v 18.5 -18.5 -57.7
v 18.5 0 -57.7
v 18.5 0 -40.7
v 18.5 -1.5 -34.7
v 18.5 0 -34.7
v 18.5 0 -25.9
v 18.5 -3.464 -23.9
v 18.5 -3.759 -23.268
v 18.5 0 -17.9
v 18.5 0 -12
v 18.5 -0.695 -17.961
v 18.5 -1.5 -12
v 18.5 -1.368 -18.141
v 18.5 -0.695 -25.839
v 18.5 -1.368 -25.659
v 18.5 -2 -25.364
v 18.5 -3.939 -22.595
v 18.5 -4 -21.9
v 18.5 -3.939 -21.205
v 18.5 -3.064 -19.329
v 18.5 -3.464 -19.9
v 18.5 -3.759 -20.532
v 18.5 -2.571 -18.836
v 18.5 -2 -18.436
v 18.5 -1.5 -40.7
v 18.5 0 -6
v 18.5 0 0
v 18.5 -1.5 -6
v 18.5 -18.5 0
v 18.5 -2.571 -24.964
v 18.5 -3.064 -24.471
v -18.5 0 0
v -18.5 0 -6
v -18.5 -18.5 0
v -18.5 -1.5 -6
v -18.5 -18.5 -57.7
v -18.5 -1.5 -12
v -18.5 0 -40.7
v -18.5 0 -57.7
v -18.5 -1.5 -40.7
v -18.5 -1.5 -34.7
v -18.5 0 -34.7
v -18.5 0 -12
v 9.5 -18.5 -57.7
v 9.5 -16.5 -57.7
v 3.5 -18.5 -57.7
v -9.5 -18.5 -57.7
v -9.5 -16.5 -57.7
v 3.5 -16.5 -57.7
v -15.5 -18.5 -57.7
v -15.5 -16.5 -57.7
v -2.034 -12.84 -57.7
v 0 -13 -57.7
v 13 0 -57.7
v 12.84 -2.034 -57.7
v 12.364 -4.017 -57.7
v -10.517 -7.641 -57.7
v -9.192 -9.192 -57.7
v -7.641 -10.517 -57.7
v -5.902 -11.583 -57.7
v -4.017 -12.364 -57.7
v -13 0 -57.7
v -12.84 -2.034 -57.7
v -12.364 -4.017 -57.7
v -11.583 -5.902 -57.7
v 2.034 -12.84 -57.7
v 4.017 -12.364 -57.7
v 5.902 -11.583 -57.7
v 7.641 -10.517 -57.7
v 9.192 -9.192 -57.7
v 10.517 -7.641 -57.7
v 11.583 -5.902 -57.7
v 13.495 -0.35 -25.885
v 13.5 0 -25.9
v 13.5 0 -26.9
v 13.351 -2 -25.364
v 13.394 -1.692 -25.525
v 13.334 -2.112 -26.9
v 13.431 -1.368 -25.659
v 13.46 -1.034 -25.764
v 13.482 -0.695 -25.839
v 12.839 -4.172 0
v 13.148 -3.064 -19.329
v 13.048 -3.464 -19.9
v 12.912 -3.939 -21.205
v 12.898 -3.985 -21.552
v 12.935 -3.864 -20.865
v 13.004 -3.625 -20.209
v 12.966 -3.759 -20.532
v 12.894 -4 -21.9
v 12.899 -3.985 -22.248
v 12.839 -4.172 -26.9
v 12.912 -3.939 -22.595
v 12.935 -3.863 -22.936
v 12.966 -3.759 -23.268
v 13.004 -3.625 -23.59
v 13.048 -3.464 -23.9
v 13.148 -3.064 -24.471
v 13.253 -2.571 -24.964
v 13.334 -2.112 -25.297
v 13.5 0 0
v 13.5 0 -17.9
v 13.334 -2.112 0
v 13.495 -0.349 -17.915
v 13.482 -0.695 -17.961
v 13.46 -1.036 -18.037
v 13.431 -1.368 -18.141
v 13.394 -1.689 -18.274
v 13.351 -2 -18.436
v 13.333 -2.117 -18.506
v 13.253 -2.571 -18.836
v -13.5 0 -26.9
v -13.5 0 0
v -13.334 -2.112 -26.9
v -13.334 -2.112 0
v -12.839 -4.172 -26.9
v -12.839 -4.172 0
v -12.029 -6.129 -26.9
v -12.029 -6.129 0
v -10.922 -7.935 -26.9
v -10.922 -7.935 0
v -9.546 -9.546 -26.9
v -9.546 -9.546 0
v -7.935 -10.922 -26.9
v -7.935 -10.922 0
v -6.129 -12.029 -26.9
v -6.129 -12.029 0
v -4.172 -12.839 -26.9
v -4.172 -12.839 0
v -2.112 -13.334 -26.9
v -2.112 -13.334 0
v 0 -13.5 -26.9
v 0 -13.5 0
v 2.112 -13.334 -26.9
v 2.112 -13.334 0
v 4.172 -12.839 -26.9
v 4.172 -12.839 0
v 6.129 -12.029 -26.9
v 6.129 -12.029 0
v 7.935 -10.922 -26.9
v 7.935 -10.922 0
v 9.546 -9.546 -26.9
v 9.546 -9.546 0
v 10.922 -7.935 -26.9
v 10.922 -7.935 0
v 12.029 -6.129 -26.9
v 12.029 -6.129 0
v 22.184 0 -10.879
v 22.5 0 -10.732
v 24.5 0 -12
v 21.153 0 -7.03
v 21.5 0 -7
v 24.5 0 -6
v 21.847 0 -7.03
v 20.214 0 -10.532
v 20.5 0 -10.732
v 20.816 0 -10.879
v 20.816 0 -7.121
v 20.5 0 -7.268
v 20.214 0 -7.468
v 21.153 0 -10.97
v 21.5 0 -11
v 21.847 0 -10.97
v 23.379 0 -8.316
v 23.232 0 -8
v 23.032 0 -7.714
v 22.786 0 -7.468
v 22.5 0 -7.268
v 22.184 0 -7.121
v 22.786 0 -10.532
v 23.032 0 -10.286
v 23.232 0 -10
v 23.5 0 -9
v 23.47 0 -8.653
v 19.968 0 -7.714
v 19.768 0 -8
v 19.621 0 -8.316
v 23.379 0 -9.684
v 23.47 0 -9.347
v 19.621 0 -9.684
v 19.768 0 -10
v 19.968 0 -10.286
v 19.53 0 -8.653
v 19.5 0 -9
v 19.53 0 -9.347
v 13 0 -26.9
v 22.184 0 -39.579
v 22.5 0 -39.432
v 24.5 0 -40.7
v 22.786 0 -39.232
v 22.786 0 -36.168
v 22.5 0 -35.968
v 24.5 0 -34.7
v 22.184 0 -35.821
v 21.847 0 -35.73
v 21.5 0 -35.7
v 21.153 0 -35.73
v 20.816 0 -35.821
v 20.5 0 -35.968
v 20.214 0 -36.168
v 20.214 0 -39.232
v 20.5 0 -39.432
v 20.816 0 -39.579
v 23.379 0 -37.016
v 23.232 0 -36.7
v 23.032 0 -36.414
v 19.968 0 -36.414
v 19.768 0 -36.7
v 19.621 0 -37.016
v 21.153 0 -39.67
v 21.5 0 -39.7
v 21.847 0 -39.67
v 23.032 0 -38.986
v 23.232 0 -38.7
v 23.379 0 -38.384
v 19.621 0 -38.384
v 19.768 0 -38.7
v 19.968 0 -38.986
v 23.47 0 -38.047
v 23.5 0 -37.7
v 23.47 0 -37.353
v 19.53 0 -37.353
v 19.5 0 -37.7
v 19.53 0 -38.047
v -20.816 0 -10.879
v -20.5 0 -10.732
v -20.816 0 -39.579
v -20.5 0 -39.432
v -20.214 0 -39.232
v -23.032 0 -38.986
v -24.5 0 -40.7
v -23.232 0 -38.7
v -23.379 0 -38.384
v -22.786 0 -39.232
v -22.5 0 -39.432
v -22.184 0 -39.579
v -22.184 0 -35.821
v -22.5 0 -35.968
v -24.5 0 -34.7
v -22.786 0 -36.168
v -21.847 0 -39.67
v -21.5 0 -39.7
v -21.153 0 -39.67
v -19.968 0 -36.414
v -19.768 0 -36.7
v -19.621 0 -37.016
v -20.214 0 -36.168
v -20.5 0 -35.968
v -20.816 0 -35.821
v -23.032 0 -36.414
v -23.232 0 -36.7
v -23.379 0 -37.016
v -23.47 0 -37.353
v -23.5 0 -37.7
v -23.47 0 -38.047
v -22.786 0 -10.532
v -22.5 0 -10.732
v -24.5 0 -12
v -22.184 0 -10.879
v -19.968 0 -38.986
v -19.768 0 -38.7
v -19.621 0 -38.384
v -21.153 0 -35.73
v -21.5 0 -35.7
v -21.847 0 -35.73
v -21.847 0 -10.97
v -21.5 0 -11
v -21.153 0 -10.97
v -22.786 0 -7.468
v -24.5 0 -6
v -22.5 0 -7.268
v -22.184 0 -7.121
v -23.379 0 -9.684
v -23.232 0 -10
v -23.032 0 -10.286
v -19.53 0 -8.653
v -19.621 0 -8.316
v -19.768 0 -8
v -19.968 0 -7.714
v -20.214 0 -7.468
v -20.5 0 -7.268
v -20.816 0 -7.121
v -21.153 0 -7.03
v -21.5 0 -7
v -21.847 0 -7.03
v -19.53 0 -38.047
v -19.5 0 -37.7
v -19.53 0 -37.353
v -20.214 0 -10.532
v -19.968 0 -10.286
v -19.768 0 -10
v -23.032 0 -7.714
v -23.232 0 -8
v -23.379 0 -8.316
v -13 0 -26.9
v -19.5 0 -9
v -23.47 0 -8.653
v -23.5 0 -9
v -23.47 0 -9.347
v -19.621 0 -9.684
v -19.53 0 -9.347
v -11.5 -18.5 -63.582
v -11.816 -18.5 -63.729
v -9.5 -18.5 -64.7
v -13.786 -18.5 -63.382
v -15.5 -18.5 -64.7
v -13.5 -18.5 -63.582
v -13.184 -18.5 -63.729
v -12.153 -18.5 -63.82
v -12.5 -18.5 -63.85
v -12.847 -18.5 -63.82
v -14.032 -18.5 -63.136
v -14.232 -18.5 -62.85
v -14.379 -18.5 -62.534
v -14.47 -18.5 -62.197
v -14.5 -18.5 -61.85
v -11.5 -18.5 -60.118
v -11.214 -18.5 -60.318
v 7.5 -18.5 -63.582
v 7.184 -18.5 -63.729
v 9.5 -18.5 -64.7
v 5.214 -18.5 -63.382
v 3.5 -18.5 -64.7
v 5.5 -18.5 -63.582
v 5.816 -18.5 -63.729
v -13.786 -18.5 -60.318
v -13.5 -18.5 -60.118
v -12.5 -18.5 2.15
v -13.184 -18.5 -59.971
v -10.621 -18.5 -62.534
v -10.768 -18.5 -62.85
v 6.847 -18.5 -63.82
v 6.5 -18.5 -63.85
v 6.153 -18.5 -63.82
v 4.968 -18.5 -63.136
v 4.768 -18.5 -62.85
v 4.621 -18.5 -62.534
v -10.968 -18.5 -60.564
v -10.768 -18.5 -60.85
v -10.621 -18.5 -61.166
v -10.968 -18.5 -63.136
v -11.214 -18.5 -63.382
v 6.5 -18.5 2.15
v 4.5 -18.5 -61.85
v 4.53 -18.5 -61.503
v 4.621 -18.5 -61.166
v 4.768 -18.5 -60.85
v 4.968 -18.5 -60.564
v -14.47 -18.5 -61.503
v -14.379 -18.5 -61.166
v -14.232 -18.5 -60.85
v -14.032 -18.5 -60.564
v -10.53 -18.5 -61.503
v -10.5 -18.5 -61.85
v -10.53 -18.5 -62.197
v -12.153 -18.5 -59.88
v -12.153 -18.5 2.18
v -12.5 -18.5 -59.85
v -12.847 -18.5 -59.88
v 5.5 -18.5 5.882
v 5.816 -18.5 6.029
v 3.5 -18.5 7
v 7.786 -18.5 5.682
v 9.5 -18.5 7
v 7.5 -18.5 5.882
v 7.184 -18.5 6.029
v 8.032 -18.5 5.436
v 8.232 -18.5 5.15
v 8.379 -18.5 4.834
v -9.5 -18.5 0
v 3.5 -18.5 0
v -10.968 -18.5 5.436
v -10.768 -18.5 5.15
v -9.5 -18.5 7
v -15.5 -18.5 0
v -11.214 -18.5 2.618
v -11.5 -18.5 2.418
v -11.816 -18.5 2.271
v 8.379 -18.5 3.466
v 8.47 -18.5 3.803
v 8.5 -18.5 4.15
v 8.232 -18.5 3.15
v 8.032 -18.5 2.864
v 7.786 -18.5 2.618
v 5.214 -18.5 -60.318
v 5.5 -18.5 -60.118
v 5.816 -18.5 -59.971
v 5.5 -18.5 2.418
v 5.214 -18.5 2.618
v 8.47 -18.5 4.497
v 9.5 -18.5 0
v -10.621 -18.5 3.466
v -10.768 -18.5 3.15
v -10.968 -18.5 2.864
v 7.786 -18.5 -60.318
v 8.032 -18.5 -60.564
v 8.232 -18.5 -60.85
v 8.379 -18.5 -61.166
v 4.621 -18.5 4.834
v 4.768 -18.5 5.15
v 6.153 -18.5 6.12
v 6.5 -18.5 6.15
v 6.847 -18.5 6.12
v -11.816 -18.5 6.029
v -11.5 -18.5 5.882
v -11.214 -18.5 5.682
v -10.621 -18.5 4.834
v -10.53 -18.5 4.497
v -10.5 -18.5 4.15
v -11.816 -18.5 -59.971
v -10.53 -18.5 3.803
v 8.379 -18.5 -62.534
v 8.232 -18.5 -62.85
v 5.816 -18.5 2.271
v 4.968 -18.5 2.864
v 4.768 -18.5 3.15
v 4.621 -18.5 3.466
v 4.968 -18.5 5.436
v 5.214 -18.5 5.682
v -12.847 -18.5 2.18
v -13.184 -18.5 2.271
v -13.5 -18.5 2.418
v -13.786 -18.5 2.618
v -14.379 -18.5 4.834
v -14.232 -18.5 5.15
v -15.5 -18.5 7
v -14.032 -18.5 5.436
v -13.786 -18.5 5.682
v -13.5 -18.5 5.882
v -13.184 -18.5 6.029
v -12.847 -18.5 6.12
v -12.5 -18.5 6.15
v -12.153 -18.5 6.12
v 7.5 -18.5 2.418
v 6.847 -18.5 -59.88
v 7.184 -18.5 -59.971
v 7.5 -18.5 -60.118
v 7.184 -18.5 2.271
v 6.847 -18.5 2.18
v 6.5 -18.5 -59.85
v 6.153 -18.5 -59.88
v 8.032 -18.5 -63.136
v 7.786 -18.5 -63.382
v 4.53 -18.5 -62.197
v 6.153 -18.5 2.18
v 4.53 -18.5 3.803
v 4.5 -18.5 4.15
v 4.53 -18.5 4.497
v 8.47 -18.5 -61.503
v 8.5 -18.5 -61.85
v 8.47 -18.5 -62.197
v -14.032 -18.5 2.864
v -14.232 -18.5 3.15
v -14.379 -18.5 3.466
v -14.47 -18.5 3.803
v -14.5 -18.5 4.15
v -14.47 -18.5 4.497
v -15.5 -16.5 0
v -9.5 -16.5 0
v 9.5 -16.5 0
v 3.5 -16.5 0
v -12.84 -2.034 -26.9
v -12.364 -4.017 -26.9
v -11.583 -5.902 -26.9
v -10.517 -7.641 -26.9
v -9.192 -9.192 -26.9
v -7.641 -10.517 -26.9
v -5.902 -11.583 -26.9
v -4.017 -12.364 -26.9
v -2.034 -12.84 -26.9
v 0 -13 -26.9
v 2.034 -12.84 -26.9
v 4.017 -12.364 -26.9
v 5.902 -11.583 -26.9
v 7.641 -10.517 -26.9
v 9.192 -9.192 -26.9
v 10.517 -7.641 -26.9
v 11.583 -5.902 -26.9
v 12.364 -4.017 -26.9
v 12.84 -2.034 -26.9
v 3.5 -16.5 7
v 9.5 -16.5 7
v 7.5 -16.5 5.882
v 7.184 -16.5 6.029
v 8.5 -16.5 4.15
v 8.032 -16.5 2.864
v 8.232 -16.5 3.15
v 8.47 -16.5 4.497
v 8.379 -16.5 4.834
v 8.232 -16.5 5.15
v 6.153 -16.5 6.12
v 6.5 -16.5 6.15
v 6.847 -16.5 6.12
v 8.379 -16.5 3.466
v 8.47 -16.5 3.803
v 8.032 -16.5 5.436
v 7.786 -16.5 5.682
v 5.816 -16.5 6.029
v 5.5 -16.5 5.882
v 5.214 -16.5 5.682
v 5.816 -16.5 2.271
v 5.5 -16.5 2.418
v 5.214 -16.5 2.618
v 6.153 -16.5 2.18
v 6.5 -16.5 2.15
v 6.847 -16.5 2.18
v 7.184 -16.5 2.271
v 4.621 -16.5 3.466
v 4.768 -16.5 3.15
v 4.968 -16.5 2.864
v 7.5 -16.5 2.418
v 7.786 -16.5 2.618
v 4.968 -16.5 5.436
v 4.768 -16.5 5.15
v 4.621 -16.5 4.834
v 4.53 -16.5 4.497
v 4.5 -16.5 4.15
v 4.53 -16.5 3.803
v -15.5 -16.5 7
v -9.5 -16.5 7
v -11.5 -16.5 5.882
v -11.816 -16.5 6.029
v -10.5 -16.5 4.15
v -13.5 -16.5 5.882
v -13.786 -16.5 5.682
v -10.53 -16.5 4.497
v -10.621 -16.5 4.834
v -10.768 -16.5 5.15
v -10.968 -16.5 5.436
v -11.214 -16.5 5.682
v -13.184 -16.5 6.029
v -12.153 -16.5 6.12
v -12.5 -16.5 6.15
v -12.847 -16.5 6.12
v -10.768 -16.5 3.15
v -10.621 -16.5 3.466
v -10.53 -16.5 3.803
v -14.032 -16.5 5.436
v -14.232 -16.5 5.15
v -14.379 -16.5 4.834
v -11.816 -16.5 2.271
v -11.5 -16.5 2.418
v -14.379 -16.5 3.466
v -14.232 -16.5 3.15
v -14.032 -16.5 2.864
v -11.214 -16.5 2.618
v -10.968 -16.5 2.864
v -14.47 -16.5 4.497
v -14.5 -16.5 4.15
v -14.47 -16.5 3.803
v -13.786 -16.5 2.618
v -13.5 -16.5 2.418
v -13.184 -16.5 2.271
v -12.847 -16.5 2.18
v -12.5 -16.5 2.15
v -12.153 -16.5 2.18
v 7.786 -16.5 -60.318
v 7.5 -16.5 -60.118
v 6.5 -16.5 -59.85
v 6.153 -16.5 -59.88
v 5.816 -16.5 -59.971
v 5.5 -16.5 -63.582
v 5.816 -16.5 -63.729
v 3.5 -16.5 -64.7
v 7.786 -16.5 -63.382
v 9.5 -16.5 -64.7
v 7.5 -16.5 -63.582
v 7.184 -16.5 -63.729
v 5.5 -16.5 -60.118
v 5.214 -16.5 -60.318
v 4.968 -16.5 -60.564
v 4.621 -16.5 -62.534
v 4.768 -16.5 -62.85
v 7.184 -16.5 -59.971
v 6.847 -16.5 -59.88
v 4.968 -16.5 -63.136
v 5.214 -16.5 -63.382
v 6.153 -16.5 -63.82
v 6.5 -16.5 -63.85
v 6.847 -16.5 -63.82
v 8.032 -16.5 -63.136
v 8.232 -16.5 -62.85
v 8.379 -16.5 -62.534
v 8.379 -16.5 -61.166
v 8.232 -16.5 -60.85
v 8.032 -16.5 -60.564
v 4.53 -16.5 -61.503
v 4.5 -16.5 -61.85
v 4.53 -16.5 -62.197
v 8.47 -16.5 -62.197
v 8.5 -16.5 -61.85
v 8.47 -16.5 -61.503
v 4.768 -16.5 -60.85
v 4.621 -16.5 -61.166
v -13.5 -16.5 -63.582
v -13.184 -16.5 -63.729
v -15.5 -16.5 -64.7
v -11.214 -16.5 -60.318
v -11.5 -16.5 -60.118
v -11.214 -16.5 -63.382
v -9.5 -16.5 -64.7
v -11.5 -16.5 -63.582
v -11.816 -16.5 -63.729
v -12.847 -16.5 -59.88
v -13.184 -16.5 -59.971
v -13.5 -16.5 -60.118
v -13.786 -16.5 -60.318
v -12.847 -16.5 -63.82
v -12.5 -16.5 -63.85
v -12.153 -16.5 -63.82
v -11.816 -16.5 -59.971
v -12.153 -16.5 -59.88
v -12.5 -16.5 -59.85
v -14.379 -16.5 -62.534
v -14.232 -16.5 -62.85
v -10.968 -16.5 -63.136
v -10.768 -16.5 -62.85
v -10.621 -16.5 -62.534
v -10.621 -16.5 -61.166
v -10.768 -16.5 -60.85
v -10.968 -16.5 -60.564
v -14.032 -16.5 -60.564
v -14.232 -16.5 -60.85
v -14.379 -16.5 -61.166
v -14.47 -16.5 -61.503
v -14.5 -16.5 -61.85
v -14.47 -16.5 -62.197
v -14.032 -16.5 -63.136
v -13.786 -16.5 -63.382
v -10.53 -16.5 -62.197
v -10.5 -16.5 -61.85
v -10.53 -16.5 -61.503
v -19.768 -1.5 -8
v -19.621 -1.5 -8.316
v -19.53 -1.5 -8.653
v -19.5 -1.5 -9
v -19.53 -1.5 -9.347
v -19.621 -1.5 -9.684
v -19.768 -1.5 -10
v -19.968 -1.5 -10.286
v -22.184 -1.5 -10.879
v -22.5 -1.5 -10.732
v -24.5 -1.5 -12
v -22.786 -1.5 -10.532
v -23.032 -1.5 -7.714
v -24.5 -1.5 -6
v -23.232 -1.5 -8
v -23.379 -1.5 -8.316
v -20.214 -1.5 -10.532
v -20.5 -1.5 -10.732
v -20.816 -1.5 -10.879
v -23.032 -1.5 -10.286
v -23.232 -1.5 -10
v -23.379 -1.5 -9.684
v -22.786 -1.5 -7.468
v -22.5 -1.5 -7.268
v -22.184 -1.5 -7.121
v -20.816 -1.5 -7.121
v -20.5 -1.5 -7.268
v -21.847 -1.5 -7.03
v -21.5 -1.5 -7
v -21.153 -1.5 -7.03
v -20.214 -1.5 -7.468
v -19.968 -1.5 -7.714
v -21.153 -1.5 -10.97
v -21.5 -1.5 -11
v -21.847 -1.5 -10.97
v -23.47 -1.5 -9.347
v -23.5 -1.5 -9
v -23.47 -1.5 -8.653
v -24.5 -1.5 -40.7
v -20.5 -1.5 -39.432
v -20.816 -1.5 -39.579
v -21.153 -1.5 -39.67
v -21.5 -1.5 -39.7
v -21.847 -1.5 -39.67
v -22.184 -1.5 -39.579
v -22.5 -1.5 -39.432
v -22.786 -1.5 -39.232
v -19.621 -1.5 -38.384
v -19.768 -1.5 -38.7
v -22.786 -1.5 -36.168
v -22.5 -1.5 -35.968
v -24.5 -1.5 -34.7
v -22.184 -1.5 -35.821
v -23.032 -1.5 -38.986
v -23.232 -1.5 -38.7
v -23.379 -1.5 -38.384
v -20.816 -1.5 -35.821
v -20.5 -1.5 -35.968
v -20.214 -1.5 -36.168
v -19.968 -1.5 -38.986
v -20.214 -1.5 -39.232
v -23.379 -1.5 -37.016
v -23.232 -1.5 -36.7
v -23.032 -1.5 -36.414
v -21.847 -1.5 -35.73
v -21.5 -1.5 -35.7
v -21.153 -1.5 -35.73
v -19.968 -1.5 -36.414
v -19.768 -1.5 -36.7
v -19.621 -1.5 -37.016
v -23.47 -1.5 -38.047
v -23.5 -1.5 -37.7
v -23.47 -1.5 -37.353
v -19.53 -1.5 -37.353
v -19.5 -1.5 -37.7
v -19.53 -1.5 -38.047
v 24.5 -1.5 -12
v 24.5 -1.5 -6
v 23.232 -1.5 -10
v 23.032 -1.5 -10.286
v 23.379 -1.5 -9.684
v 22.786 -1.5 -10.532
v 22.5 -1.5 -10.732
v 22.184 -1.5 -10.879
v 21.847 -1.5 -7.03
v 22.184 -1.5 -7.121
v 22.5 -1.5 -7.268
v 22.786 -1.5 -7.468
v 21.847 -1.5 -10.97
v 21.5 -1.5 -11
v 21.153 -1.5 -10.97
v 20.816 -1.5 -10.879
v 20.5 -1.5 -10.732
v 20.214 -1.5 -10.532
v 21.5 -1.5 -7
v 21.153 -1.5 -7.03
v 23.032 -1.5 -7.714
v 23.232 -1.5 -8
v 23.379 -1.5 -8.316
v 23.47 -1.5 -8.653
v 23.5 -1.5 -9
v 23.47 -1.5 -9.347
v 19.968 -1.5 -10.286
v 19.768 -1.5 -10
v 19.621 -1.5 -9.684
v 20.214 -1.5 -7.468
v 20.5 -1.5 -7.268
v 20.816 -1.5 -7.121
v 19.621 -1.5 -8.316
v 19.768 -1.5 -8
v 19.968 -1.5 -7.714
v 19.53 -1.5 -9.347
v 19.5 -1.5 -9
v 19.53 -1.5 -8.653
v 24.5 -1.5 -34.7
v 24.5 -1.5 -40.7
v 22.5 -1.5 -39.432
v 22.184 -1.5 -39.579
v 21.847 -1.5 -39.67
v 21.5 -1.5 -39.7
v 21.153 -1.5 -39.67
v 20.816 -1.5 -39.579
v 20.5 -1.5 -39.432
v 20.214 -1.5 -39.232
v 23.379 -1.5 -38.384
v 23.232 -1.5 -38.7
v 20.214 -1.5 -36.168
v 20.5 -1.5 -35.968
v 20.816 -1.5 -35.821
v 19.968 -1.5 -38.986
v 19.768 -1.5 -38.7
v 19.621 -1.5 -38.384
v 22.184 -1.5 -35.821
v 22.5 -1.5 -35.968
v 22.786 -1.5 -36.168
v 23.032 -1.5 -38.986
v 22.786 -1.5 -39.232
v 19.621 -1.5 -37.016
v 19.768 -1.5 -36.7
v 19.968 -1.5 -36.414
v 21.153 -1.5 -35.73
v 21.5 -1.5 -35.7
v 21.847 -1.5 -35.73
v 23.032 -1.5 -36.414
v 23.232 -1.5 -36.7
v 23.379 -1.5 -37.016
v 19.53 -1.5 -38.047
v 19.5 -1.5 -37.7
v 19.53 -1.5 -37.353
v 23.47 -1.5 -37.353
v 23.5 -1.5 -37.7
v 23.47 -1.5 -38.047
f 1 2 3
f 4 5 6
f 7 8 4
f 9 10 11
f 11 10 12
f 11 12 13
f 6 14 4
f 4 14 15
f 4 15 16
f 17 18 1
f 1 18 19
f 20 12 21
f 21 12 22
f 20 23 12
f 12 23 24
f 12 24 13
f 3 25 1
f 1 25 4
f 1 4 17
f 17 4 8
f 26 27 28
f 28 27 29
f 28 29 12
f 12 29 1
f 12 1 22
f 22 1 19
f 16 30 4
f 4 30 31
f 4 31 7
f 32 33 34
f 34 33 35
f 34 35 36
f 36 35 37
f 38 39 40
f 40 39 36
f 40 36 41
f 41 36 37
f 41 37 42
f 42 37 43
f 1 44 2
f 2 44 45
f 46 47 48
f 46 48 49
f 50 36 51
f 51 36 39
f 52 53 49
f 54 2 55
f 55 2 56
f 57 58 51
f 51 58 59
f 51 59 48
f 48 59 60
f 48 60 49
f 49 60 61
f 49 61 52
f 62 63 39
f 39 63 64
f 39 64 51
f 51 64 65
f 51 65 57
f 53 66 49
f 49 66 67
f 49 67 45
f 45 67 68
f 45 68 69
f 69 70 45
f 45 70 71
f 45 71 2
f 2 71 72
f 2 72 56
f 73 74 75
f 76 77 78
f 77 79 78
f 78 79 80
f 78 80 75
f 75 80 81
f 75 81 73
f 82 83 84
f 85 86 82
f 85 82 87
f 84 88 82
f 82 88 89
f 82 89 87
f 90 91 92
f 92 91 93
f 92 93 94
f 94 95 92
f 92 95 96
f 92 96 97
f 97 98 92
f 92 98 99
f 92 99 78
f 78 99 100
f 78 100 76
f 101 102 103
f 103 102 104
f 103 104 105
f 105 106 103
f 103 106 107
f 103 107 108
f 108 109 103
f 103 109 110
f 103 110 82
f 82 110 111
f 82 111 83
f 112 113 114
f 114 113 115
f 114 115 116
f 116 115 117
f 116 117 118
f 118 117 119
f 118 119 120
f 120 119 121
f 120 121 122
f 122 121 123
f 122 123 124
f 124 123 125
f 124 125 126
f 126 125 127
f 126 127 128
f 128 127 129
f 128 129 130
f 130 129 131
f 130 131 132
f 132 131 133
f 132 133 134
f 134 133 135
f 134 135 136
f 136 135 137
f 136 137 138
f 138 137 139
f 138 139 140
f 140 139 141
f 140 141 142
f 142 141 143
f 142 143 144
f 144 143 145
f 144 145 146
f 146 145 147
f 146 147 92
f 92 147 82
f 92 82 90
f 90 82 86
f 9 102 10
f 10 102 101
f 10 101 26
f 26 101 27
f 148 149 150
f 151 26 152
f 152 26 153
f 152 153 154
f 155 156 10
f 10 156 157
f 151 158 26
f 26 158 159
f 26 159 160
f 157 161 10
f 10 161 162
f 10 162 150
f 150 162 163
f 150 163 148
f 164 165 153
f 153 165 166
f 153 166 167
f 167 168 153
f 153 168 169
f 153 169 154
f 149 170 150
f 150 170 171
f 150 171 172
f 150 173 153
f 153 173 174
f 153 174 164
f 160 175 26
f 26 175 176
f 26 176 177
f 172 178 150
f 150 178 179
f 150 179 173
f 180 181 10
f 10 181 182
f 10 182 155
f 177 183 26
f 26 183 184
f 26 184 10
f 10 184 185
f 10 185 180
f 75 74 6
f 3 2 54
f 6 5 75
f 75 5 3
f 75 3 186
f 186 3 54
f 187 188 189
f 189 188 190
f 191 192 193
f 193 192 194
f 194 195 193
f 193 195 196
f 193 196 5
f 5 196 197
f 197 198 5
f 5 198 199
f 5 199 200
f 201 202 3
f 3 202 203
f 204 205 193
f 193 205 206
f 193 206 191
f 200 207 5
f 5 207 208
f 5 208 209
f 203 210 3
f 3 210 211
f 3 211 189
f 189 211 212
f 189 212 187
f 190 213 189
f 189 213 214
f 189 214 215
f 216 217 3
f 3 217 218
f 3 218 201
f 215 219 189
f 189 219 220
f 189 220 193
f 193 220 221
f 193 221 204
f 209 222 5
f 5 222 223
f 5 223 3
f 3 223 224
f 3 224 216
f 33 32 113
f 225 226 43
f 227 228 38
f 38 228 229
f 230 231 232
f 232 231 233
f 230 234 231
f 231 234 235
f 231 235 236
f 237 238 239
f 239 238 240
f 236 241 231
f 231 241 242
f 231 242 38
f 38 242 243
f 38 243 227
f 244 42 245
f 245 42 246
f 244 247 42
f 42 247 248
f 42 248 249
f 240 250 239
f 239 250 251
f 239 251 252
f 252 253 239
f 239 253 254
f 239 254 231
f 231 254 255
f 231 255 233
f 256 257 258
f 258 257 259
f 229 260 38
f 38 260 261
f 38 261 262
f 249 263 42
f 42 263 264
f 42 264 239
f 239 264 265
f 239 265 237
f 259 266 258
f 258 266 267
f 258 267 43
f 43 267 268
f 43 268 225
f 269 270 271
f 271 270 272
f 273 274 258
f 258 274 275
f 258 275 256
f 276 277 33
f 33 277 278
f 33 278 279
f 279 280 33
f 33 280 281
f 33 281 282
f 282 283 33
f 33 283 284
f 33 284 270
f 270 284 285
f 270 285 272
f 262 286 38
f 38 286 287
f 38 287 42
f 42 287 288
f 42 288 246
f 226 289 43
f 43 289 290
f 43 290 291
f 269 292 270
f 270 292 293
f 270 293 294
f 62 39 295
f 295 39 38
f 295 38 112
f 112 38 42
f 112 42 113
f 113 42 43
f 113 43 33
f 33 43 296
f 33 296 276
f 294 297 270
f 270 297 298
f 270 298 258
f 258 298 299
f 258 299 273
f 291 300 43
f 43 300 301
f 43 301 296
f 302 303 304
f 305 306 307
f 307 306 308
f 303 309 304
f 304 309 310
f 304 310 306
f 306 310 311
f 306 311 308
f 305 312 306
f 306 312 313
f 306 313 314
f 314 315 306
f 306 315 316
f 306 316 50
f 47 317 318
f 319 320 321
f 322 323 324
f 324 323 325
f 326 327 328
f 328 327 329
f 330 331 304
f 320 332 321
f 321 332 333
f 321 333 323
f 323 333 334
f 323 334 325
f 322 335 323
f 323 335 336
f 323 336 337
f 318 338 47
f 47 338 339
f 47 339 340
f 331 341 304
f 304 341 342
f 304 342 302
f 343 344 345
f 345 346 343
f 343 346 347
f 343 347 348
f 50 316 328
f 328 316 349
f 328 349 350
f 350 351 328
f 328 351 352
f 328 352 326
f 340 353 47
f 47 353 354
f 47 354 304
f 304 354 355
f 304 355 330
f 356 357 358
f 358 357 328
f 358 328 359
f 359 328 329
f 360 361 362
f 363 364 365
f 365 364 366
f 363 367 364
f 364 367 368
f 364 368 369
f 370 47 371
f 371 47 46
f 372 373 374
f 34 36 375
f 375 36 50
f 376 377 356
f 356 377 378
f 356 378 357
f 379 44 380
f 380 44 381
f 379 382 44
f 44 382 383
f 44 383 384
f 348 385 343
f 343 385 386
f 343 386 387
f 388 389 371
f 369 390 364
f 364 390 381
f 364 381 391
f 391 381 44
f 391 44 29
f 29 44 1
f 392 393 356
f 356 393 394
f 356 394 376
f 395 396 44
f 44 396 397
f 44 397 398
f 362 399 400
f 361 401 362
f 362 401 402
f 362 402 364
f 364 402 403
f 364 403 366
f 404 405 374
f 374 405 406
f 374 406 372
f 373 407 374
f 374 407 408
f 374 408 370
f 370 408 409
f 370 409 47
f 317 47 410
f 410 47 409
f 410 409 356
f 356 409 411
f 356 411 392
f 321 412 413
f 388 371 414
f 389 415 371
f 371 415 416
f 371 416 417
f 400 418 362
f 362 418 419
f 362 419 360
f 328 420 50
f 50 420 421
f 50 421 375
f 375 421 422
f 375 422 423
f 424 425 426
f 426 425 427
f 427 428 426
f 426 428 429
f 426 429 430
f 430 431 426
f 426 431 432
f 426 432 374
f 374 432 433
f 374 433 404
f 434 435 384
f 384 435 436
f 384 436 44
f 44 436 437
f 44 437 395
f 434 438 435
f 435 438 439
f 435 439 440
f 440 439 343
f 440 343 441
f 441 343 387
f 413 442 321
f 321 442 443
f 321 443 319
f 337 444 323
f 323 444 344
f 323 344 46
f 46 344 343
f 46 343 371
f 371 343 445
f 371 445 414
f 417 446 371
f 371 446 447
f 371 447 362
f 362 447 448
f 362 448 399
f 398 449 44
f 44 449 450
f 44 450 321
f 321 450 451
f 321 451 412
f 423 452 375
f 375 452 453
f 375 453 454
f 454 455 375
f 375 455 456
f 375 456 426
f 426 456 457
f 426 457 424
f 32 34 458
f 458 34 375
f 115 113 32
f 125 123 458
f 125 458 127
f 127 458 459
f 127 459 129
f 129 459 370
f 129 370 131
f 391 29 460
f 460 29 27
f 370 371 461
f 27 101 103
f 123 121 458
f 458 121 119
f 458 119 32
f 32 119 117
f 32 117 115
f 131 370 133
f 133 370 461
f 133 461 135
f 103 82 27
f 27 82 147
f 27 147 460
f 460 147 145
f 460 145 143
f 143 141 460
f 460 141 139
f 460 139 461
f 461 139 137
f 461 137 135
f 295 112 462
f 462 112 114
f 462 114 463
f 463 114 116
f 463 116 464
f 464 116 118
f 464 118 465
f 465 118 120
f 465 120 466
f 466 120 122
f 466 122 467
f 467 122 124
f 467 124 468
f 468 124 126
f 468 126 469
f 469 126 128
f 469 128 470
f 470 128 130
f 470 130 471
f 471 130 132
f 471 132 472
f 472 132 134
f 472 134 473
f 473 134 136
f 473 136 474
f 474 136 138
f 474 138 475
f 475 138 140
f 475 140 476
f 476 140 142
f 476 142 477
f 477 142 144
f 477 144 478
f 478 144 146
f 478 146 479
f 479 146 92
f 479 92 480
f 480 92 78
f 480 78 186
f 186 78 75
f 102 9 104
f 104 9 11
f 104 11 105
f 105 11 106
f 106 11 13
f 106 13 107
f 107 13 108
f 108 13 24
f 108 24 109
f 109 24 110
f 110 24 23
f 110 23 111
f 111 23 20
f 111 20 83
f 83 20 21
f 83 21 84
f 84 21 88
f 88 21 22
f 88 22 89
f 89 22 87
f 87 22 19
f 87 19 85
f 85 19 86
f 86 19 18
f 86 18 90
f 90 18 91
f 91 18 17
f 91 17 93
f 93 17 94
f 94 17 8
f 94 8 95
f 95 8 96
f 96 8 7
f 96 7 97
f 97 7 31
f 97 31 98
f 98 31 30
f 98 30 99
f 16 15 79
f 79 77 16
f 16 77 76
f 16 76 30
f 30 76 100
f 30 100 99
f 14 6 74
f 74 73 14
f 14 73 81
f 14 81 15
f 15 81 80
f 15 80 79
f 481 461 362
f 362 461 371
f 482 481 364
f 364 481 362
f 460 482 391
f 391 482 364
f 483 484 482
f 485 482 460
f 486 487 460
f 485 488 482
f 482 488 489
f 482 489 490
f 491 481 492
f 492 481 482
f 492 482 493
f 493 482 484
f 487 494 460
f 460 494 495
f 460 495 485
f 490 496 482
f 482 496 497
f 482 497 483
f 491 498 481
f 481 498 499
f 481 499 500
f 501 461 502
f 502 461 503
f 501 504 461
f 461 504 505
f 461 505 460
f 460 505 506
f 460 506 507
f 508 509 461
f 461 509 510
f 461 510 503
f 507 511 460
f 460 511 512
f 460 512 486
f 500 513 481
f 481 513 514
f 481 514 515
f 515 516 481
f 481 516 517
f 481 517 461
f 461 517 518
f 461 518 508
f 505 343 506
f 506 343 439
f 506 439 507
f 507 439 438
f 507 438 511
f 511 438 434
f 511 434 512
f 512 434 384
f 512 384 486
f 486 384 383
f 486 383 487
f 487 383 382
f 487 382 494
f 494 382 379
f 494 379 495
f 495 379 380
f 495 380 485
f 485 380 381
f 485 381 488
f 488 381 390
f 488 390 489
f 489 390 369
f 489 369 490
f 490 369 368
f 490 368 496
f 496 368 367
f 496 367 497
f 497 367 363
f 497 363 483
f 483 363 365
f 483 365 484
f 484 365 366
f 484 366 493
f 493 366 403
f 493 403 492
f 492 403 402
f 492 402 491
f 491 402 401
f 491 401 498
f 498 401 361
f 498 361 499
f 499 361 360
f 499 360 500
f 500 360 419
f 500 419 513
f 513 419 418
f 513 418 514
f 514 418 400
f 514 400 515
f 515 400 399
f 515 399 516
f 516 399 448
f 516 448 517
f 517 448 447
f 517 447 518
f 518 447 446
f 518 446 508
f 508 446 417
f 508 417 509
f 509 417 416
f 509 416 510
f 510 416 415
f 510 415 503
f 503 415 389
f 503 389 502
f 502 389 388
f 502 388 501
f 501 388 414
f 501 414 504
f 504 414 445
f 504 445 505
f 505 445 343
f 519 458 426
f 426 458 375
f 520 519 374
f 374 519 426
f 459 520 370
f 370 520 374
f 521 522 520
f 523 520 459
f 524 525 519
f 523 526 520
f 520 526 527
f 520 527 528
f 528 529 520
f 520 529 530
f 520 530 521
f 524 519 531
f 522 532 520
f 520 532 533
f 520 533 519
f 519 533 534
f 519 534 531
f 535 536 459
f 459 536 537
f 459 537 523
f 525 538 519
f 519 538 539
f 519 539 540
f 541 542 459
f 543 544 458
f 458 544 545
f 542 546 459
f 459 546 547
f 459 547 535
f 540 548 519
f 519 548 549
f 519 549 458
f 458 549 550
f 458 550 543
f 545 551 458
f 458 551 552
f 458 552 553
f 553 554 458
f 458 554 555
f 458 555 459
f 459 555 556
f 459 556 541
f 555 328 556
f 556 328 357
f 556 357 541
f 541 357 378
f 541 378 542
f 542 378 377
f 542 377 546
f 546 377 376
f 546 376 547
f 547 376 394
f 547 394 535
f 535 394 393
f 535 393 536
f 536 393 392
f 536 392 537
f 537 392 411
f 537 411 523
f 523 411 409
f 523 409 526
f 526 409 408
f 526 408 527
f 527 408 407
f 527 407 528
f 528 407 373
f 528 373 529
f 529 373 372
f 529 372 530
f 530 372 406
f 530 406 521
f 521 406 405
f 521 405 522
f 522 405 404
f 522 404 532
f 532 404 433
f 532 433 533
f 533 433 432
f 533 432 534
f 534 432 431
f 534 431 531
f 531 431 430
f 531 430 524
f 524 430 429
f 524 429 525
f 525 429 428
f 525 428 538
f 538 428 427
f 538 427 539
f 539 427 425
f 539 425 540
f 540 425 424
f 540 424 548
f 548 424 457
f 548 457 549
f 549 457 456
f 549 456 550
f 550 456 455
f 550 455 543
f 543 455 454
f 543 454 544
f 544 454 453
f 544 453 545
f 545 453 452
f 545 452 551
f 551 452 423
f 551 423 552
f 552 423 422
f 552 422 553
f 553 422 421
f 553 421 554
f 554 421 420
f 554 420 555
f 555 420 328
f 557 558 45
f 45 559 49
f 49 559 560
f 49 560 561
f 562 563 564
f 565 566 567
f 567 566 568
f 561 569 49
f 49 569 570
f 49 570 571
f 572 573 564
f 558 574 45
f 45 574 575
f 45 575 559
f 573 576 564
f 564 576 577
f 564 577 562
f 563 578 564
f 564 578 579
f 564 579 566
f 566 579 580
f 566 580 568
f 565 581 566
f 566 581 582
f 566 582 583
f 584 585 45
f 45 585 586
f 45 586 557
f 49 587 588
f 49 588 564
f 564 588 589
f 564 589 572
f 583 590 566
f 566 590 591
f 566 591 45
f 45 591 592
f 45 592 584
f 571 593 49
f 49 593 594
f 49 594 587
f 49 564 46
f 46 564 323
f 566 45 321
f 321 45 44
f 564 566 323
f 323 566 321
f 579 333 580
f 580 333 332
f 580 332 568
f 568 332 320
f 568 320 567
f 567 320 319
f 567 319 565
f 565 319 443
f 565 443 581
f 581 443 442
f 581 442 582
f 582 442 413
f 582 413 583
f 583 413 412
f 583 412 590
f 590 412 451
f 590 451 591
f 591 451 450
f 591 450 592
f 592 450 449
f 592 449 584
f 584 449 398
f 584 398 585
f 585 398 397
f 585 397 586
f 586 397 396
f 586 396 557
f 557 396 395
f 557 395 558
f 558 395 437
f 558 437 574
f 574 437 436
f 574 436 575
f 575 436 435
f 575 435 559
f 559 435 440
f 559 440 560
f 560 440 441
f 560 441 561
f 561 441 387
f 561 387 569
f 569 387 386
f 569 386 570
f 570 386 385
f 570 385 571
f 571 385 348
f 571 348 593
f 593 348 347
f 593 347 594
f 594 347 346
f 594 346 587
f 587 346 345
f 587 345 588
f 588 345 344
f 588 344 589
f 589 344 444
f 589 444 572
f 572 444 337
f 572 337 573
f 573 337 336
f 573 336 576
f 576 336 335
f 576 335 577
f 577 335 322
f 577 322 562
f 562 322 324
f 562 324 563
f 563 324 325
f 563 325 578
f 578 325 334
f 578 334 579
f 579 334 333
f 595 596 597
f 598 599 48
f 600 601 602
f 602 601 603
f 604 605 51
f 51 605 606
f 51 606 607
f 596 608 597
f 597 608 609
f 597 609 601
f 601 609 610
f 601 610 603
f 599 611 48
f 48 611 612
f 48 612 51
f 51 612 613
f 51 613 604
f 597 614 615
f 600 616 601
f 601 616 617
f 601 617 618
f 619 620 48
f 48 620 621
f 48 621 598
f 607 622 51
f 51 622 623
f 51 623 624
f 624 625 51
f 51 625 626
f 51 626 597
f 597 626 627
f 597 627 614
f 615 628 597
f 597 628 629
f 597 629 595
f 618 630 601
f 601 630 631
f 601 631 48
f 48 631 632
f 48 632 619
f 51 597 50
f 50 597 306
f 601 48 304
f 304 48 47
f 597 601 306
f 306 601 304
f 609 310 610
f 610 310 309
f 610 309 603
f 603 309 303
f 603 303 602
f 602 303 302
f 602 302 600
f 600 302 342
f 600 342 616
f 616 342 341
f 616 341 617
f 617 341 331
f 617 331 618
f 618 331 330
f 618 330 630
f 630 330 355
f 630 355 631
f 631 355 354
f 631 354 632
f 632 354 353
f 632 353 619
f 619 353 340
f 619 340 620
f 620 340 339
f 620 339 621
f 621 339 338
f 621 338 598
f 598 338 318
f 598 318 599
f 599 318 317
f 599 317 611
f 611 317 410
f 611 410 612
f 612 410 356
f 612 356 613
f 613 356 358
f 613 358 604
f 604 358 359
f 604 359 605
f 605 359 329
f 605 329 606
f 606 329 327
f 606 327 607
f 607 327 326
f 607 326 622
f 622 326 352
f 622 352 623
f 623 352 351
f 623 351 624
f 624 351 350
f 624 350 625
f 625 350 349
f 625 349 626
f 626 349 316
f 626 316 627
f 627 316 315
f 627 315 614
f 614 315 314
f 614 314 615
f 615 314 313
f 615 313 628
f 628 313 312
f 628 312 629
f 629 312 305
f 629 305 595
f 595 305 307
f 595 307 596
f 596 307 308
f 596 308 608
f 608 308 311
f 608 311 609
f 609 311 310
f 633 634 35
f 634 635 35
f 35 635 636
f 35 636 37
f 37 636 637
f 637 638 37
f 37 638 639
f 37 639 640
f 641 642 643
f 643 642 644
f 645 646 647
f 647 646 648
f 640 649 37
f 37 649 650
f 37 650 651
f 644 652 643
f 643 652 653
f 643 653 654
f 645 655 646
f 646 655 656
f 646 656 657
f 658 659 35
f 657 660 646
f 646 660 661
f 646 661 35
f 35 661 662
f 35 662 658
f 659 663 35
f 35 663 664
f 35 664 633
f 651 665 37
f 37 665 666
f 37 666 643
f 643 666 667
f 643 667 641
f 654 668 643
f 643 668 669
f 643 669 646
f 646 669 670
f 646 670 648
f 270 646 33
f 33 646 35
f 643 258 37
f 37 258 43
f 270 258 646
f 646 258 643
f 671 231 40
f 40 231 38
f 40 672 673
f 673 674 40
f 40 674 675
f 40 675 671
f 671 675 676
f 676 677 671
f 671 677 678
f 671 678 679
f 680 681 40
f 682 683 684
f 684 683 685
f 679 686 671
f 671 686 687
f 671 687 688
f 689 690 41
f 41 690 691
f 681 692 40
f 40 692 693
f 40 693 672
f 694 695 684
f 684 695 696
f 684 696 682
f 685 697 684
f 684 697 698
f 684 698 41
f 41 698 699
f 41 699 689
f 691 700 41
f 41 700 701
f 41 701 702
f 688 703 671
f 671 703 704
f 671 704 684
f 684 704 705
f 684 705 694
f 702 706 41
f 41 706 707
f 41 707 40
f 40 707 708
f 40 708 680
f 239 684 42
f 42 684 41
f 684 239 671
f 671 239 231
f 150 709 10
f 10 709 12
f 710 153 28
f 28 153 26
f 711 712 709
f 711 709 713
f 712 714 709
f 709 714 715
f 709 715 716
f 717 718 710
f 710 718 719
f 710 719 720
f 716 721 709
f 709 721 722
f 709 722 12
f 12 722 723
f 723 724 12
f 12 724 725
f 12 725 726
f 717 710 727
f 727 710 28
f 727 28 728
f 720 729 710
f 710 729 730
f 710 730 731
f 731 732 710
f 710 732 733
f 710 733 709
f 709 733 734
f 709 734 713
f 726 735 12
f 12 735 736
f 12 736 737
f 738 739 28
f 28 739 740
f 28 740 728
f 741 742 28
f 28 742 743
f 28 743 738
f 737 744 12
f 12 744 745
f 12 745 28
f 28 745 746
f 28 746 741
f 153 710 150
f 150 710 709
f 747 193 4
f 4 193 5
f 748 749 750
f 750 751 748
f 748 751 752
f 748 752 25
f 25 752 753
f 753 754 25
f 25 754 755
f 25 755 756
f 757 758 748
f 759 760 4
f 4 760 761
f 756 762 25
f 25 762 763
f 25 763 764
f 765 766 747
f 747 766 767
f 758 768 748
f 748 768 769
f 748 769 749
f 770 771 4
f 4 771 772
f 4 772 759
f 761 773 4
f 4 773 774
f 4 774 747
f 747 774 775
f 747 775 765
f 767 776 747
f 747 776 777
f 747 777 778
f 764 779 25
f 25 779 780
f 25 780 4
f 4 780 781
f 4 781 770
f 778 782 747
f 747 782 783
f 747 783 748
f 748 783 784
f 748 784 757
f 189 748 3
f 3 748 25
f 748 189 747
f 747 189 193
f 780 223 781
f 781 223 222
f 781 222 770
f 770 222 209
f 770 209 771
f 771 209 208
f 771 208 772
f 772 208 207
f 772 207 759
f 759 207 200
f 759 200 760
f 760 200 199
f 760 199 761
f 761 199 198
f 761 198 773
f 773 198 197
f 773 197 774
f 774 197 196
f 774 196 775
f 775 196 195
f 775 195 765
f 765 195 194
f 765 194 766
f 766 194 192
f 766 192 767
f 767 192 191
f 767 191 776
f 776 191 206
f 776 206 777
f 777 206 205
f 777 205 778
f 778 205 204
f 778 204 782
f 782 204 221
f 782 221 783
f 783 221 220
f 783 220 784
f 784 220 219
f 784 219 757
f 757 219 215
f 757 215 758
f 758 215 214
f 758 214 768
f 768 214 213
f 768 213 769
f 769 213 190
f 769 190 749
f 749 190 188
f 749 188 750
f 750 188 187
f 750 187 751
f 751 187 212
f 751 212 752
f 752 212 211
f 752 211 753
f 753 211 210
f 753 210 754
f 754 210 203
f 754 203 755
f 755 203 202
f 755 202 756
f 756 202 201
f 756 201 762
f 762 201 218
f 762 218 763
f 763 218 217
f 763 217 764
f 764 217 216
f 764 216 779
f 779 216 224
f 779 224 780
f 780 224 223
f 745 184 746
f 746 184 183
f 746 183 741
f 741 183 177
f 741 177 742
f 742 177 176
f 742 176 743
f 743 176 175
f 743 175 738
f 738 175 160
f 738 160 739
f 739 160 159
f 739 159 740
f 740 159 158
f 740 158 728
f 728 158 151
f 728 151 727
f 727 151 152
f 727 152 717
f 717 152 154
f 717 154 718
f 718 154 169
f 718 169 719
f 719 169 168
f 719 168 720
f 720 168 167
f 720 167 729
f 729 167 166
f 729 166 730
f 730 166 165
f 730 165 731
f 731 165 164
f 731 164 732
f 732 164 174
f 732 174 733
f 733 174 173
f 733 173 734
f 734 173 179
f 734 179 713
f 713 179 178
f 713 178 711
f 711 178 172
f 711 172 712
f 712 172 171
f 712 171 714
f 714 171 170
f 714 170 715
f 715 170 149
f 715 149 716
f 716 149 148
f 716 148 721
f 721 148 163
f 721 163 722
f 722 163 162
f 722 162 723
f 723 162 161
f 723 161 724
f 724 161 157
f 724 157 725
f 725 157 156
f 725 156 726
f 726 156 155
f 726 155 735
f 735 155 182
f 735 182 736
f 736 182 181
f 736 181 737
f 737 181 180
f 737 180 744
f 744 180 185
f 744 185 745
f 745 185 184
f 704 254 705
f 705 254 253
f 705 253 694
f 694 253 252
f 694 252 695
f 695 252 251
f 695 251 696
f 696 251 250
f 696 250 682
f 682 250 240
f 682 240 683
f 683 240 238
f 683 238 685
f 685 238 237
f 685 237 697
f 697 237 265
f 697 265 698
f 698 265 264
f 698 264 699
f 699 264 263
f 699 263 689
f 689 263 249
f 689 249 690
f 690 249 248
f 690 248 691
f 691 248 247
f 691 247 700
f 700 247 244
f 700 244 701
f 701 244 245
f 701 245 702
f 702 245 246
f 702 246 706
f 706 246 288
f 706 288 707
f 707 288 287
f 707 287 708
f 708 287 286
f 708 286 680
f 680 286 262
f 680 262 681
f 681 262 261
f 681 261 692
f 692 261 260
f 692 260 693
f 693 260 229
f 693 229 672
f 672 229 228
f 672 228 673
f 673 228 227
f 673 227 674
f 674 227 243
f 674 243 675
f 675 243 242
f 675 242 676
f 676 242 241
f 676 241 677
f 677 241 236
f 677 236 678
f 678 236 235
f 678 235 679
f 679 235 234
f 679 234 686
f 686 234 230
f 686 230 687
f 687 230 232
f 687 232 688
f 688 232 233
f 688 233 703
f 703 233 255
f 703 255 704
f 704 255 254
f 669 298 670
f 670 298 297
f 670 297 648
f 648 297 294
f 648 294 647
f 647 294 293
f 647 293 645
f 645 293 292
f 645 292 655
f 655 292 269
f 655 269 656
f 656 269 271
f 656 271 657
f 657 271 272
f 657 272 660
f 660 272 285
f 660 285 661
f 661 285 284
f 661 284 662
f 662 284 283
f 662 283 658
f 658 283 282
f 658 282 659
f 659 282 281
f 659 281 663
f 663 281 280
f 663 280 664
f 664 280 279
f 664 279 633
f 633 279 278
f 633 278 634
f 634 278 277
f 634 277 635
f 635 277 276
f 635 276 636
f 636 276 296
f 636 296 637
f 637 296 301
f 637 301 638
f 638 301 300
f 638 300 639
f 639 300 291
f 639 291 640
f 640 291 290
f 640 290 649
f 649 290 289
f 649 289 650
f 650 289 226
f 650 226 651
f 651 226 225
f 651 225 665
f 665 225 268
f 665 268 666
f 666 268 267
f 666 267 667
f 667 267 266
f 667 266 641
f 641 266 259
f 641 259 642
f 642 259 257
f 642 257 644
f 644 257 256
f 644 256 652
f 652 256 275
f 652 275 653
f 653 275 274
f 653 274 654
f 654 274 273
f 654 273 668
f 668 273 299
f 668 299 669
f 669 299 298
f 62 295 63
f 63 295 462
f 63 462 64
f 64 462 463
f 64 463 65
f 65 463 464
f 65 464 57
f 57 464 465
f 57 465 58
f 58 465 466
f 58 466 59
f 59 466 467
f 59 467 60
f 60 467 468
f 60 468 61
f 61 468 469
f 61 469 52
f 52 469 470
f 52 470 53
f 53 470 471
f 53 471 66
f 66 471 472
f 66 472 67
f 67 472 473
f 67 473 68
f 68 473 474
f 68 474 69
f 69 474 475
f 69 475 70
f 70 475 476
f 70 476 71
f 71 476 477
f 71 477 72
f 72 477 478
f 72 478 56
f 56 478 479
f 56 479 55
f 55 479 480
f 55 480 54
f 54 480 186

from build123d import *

# Parameters (mm, degrees)
EXTRUDE_1_DEPTH     = 57.7
EXTRUDE_2_DEPTH     = 30.8
SKETCH_5_R          = 4
CUT_EXTRUDE_1_DEPTH = 15
SKETCH_7_W          = 6
SKETCH_7_H          = 7
SKETCH_7_R          = 2
EXTRUDE_3_DEPTH     = 2
SKETCH_8_W          = 6
SKETCH_8_H          = 1.5
EXTRUDE_4_DEPTH     = 6
EXTRUDE_START       = -37
SKETCH_8_3_W        = 6
SKETCH_8_3_H        = 1.5
EXTRUDE_5_DEPTH     = 6
SKETCH_9_R          = 2
CUT_EXTRUDE_2_DEPTH = 6
SKETCH_10_R         = 13
CUT_EXTRUDE_3_DEPTH = 49.696406438


with BuildPart() as part:
    # 스케치1 → 보스-돌출1 (new body)
    with BuildSketch(Plane.XY):
        with BuildLine():
            Line((-13.5, 0), (-18.5, 0))
            Line((-18.5, 0), (-18.5, -18.5))
            Line((-18.5, -18.5), (18.5, -18.5))
            Line((18.5, -18.5), (18.5, 0))
            Line((18.5, 0), (13.5, 0))
            ThreePointArc((13.5, 0), (0, -13.5), (-13.5, 0))
        make_face()
    extrude(amount=-EXTRUDE_1_DEPTH)

    # 스케치3 → 보스-돌출2 (add)
    with BuildSketch(Plane.XY.offset(-26.9)):
        with BuildLine():
            Line((-13.5, 0), (-11.5, 0))
            ThreePointArc((-11.5, 0), (0, -11.5), (11.5, 0))
            Line((11.5, 0), (13.5, 0))
            ThreePointArc((13.5, 0), (0, -13.5), (-13.5, 0))
        make_face()
    extrude(amount=-EXTRUDE_2_DEPTH)

    # 스케치5 → 컷-돌출1 (cut)
    with BuildSketch(Plane.ZY.offset(-18.5)):
        with Locations((-21.9, 0)):
            Circle(SKETCH_5_R)
    extrude(amount=CUT_EXTRUDE_1_DEPTH, mode=Mode.SUBTRACT)

    # 스케치7 → 보스-돌출3 (add)
    # profile 1 of 2: a face of its own
    with BuildSketch(Plane.XZ.offset(18.5)):
        with Locations((6.5, 3.5)):
            Rectangle(SKETCH_7_W, SKETCH_7_H)
        with Locations(Location((6.5, 4.15, 0), (0, 0, 270))):
            Circle(SKETCH_7_R, mode=Mode.SUBTRACT)
    # profile 2 of 2: a face of its own
    with BuildSketch(Plane.XZ.offset(18.5)):
        with Locations((-12.5, 3.5)):
            Rectangle(SKETCH_7_W, SKETCH_7_H)
        with Locations(Location((-12.5, 4.15, 0), (0, 0, 270))):
            Circle(SKETCH_7_R, mode=Mode.SUBTRACT)
    extrude_3 = extrude(amount=-EXTRUDE_3_DEPTH)

    # 대칭 복사1: 보스-돌출3 across plane
    add(extrude_3.mirror(Plane.XY.offset(-28.85)))

    # 스케치8 → 보스-돌출4 (add)
    with BuildSketch(Plane.ZY.offset(18.5)):
        with Locations((-9, -0.75)):
            Rectangle(SKETCH_8_W, SKETCH_8_H)
        with Locations((-37.7, -0.75)):
            Rectangle(SKETCH_8_W, SKETCH_8_H)
    extrude(amount=EXTRUDE_4_DEPTH)

    # 스케치8<3> → 보스-돌출5 (add)
    with BuildSketch(Plane.ZY.offset(18.5).offset(EXTRUDE_START)):
        with Locations((-9, -0.75)):
            Rectangle(SKETCH_8_3_W, SKETCH_8_3_H)
        with Locations((-37.7, -0.75)):
            Rectangle(SKETCH_8_3_W, SKETCH_8_3_H)
    extrude(amount=-EXTRUDE_5_DEPTH)

    # 스케치9 → 컷-돌출2 (cut)
    with BuildSketch(Plane(origin=(0, 0, 0), x_dir=(1, 0, 0), z_dir=(0, 1, 0))):
        with Locations(Location((-21.5, 37.7, 0), (0, 0, 180))):
            Circle(SKETCH_9_R)
        with Locations(Location((-21.5, 9, 0), (0, 0, 180))):
            Circle(SKETCH_9_R)
        with Locations(Location((21.5, 9, 0), (0, 0, 180))):
            Circle(SKETCH_9_R)
        with Locations(Location((21.5, 37.7, 0), (0, 0, 90))):
            Circle(SKETCH_9_R)
    extrude(amount=-CUT_EXTRUDE_2_DEPTH, mode=Mode.SUBTRACT)

    # 스케치10 → 컷-돌출3 (cut, through all)
    with BuildSketch(Plane.XY.offset(-26.9)):
        Circle(SKETCH_10_R)
    extrude(amount=-CUT_EXTRUDE_3_DEPTH, mode=Mode.SUBTRACT)


solid = part.part
